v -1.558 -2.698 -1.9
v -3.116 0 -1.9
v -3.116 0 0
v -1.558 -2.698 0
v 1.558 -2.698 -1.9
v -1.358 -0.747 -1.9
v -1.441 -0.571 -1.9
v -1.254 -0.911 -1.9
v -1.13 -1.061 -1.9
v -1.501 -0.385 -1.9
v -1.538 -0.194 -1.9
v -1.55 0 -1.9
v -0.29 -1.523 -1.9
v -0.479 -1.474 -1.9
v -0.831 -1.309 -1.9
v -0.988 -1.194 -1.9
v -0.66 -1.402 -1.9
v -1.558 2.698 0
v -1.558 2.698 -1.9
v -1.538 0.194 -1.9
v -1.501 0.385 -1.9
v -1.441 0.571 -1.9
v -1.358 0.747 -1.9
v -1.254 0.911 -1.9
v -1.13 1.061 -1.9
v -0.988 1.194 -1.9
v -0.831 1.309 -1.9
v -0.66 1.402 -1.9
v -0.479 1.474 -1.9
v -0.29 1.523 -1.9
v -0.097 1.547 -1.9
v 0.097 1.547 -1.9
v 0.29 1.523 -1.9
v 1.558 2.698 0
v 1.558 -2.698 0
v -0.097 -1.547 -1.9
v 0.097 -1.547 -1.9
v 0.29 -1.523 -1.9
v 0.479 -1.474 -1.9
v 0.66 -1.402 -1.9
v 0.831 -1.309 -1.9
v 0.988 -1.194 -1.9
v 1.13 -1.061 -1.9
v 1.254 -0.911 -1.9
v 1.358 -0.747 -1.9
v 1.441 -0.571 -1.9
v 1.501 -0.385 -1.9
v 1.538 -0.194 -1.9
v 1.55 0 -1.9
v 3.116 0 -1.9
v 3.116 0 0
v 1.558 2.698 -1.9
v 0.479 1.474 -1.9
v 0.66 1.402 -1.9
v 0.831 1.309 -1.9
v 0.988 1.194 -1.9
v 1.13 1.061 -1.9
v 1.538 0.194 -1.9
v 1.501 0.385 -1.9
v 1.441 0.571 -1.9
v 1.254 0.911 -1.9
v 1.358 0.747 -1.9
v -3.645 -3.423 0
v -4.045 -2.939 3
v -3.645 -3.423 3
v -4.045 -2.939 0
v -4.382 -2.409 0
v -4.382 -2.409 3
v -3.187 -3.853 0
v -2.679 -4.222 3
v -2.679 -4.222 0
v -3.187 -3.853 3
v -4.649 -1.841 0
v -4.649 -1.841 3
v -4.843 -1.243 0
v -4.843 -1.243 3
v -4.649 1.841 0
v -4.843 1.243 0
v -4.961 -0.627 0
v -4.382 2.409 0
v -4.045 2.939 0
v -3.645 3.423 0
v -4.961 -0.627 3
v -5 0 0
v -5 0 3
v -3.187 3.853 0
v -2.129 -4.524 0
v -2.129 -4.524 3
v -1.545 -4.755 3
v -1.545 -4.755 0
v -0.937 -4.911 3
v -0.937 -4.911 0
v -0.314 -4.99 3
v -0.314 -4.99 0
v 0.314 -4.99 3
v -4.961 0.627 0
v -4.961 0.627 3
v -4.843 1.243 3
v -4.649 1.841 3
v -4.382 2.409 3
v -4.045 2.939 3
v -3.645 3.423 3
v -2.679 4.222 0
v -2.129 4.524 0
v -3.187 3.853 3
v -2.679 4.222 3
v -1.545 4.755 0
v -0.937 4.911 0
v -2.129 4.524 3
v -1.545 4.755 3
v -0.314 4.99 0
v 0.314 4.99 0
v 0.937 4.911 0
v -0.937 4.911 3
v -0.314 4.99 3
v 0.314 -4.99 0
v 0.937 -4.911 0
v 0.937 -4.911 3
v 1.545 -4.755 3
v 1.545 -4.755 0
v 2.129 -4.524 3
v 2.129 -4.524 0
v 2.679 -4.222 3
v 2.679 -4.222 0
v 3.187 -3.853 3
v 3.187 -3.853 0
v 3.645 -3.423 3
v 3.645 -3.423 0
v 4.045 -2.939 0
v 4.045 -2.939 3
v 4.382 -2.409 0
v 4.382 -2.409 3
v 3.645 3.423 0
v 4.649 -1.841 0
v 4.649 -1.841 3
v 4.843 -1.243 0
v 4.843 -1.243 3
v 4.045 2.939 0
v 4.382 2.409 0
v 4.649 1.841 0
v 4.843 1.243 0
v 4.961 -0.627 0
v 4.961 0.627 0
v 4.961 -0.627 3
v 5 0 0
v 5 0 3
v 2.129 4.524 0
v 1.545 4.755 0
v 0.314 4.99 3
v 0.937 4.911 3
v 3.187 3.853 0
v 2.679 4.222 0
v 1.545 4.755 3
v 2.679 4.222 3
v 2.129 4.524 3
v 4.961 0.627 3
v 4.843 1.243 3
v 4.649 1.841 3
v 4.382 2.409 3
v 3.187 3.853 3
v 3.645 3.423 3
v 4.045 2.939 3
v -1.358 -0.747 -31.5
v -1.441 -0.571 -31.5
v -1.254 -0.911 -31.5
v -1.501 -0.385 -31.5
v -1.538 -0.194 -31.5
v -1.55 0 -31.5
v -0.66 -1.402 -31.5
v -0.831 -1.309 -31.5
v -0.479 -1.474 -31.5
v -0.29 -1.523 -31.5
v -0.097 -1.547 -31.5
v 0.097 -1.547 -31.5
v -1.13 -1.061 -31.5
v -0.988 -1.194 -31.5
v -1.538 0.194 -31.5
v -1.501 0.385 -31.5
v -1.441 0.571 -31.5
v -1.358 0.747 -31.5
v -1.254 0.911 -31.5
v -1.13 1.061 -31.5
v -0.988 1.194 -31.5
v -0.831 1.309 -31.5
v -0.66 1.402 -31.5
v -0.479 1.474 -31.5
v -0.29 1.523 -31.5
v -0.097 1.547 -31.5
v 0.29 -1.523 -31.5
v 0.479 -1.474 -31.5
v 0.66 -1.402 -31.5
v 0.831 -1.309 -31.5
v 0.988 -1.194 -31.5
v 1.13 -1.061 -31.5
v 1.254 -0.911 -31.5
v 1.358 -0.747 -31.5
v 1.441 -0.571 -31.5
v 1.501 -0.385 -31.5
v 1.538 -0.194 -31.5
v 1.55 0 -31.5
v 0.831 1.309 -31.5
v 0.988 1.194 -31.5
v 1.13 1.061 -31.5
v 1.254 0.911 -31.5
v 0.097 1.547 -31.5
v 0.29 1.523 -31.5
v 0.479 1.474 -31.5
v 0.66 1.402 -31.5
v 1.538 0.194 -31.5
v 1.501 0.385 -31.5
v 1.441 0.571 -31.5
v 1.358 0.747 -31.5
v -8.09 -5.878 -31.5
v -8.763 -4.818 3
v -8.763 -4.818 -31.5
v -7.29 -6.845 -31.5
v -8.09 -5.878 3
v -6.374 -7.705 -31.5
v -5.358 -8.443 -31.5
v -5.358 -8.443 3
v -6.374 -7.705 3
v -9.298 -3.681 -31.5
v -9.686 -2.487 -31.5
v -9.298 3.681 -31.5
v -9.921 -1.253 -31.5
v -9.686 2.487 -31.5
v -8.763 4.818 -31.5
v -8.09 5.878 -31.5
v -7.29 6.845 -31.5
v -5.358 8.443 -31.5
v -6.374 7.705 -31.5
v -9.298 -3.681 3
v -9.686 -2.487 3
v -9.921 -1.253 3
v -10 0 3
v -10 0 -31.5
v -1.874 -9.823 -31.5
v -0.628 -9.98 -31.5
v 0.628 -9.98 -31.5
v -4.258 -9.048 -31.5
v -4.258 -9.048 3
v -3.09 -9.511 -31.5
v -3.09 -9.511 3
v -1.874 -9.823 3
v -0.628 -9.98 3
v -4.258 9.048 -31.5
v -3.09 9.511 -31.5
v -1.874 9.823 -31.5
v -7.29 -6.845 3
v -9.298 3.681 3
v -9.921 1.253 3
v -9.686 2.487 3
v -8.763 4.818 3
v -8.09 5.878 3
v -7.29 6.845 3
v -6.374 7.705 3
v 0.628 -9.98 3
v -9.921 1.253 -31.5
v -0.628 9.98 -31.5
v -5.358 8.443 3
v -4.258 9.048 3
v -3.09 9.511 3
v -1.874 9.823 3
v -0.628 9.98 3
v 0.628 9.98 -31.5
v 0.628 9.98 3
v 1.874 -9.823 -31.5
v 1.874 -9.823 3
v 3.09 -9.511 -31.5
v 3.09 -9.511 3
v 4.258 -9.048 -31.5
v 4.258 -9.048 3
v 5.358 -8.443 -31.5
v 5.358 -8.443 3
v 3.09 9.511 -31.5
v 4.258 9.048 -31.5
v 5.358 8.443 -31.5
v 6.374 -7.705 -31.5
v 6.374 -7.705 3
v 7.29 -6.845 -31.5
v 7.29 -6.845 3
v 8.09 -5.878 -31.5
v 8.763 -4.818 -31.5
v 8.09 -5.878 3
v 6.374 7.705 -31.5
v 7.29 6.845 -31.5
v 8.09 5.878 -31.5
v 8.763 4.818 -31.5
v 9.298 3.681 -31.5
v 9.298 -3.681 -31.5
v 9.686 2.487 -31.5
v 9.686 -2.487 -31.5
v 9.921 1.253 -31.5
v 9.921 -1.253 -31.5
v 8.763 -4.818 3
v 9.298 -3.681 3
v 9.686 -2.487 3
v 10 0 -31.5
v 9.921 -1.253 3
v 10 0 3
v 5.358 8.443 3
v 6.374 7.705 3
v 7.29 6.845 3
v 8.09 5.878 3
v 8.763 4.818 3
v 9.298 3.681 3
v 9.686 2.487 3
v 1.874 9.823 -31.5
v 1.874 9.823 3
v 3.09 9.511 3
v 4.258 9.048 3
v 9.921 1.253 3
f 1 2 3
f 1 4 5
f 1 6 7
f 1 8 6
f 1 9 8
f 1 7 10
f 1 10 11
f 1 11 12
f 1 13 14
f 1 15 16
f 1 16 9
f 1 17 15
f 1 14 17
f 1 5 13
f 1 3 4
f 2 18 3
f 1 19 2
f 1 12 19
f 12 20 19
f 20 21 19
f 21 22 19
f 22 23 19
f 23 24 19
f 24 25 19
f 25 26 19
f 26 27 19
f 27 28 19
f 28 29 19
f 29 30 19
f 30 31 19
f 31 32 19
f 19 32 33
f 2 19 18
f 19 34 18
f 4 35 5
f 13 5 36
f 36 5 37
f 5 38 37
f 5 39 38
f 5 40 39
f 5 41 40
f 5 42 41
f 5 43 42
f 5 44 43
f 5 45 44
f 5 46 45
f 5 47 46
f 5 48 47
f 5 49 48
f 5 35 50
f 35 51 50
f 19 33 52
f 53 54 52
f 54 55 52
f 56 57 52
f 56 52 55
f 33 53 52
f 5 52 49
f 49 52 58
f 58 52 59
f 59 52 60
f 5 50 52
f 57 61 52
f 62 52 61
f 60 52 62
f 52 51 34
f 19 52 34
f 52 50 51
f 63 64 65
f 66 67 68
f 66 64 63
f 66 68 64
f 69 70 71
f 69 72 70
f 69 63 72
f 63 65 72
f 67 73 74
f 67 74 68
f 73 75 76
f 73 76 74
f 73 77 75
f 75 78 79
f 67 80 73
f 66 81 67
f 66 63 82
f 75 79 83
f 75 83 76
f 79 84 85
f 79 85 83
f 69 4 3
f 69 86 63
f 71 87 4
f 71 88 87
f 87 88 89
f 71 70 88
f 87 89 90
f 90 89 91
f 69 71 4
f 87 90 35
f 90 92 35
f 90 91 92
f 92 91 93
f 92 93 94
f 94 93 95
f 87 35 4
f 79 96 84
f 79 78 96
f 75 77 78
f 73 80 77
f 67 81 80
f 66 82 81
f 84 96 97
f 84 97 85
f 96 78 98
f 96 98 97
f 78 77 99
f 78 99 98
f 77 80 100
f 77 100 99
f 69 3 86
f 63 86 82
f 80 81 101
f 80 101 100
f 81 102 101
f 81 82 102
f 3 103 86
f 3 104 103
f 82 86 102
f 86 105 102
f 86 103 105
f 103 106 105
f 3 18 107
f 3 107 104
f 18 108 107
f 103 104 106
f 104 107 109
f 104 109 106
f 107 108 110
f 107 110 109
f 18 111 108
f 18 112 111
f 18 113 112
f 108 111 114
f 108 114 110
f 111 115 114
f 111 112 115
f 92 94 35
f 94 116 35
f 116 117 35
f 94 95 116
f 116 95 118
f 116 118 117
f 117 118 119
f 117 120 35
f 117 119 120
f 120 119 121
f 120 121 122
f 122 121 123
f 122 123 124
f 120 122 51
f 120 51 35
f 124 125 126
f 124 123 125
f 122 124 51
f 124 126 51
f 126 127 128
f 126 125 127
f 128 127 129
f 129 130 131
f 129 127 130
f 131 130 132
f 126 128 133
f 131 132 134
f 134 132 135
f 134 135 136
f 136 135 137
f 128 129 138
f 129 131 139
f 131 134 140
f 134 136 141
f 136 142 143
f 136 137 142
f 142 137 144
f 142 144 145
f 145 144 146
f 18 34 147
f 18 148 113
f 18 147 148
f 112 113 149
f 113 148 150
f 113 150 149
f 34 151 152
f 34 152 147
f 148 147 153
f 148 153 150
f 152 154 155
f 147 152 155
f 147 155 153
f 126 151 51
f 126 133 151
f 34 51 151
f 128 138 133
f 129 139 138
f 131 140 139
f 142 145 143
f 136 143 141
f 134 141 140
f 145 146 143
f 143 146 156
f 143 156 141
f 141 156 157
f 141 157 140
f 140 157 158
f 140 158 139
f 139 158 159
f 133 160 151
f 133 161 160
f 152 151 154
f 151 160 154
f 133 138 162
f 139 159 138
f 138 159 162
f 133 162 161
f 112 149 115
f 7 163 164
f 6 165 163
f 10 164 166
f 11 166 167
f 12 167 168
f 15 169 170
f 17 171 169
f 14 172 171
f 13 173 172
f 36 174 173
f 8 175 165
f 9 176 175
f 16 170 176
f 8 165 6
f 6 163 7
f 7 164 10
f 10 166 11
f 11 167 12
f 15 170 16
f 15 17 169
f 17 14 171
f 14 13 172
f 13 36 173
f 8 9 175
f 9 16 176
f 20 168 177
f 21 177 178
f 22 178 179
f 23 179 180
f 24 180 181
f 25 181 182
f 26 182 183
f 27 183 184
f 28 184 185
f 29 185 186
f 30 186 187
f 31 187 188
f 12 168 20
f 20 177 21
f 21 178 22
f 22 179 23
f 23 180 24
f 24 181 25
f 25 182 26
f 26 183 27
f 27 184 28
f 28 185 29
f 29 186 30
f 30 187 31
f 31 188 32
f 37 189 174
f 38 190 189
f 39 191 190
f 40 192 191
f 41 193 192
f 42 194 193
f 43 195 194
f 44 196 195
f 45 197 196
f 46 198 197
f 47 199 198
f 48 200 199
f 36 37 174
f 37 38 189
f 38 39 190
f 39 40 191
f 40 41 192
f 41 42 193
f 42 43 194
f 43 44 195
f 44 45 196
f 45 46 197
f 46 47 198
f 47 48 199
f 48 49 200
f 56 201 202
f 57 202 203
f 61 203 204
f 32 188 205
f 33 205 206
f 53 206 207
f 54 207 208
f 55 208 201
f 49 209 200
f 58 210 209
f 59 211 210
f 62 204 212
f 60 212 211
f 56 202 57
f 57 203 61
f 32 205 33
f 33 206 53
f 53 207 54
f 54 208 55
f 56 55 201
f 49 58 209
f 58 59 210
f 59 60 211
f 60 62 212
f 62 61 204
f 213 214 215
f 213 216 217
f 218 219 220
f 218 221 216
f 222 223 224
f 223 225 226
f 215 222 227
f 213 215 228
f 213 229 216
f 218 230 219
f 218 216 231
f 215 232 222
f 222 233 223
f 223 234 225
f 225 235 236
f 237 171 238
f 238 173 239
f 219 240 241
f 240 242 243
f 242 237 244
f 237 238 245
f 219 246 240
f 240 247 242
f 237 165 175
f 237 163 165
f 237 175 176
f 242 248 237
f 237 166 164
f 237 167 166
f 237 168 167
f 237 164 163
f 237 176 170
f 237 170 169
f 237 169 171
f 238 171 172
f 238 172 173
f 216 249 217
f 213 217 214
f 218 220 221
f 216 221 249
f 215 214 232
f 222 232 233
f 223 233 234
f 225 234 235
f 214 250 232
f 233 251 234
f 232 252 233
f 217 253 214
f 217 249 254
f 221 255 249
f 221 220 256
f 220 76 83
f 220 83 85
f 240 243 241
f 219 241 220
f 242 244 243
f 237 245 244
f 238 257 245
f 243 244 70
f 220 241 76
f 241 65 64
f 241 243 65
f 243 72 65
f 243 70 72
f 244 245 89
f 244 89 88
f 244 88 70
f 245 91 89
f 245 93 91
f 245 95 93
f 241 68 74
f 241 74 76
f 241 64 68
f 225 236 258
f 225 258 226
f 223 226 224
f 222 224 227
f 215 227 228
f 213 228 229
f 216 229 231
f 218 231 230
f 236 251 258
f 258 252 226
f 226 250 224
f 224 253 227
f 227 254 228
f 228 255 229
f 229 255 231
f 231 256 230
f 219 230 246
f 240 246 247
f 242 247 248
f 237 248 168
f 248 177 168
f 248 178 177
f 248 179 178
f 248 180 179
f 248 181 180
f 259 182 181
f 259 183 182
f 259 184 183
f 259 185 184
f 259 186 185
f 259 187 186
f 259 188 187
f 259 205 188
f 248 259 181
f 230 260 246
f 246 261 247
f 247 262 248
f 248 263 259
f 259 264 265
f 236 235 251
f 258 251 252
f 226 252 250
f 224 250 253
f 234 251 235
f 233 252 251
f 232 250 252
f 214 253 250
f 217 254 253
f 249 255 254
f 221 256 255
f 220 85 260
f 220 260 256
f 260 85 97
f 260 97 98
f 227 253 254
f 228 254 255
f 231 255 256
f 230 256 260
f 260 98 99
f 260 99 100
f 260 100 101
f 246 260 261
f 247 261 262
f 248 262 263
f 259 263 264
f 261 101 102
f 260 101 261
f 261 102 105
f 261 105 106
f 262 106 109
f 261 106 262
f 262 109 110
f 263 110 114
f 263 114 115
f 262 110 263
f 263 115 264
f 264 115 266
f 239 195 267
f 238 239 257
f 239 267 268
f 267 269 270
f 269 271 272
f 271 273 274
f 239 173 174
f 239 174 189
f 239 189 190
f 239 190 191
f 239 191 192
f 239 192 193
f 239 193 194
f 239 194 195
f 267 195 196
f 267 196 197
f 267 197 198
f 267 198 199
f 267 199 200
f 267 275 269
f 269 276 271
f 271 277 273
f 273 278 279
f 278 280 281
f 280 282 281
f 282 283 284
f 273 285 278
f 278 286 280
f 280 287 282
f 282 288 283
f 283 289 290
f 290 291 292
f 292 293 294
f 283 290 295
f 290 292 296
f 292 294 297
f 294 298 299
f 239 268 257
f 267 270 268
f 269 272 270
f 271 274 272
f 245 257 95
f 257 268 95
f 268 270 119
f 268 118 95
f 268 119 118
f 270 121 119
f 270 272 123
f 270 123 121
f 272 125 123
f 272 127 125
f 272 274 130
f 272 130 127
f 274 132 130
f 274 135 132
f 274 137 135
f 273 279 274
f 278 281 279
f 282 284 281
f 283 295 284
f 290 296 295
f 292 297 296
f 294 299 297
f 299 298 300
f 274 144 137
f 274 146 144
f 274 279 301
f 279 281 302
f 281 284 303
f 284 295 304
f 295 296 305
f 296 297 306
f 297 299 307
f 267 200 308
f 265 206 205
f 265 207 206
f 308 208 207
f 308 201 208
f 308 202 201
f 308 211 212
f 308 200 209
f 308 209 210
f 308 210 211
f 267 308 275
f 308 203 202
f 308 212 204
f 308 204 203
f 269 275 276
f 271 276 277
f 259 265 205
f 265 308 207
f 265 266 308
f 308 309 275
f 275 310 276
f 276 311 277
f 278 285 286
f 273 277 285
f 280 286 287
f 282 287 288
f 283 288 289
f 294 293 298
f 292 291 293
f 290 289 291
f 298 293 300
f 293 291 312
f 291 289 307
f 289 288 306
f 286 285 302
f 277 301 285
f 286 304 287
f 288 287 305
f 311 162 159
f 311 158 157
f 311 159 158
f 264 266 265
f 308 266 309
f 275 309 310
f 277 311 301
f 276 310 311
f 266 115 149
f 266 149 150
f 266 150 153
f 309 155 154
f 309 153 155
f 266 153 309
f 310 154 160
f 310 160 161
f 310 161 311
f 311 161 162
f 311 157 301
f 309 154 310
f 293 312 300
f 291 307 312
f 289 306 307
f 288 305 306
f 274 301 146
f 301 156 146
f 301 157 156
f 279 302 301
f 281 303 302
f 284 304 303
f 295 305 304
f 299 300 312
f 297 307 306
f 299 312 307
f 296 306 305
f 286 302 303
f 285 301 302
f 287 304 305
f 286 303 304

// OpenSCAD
$fn = 50;


difference() {
	union() {
		translate(v = [0, 0, -31.5000000000]) {
			cylinder(h = 34.5000000000, r = 10.0000000000);
		}
	}
	union() {
		translate(v = [0, 0, 0]) {
			rotate(a = [0, 0, 0]) {
				difference() {
					union() {
						translate(v = [0, 0, -1.9000000000]) {
							linear_extrude(height = 1.9000000000) {
								polygon(points = [[3.1158000000, 0.0000000000], [1.5579000000, 2.6983619531], [-1.5579000000, 2.6983619531], [-3.1158000000, 0.0000000000], [-1.5579000000, -2.6983619531], [1.5579000000, -2.6983619531]]);
							}
						}
					}
					union();
				}
			}
		}
		#cylinder(h = 3, r = 5.0000000000);
		#translate(v = [0, 0, -100.0000000000]) {
			cylinder(h = 200, r = 1.5500000000);
		}
	}
}
